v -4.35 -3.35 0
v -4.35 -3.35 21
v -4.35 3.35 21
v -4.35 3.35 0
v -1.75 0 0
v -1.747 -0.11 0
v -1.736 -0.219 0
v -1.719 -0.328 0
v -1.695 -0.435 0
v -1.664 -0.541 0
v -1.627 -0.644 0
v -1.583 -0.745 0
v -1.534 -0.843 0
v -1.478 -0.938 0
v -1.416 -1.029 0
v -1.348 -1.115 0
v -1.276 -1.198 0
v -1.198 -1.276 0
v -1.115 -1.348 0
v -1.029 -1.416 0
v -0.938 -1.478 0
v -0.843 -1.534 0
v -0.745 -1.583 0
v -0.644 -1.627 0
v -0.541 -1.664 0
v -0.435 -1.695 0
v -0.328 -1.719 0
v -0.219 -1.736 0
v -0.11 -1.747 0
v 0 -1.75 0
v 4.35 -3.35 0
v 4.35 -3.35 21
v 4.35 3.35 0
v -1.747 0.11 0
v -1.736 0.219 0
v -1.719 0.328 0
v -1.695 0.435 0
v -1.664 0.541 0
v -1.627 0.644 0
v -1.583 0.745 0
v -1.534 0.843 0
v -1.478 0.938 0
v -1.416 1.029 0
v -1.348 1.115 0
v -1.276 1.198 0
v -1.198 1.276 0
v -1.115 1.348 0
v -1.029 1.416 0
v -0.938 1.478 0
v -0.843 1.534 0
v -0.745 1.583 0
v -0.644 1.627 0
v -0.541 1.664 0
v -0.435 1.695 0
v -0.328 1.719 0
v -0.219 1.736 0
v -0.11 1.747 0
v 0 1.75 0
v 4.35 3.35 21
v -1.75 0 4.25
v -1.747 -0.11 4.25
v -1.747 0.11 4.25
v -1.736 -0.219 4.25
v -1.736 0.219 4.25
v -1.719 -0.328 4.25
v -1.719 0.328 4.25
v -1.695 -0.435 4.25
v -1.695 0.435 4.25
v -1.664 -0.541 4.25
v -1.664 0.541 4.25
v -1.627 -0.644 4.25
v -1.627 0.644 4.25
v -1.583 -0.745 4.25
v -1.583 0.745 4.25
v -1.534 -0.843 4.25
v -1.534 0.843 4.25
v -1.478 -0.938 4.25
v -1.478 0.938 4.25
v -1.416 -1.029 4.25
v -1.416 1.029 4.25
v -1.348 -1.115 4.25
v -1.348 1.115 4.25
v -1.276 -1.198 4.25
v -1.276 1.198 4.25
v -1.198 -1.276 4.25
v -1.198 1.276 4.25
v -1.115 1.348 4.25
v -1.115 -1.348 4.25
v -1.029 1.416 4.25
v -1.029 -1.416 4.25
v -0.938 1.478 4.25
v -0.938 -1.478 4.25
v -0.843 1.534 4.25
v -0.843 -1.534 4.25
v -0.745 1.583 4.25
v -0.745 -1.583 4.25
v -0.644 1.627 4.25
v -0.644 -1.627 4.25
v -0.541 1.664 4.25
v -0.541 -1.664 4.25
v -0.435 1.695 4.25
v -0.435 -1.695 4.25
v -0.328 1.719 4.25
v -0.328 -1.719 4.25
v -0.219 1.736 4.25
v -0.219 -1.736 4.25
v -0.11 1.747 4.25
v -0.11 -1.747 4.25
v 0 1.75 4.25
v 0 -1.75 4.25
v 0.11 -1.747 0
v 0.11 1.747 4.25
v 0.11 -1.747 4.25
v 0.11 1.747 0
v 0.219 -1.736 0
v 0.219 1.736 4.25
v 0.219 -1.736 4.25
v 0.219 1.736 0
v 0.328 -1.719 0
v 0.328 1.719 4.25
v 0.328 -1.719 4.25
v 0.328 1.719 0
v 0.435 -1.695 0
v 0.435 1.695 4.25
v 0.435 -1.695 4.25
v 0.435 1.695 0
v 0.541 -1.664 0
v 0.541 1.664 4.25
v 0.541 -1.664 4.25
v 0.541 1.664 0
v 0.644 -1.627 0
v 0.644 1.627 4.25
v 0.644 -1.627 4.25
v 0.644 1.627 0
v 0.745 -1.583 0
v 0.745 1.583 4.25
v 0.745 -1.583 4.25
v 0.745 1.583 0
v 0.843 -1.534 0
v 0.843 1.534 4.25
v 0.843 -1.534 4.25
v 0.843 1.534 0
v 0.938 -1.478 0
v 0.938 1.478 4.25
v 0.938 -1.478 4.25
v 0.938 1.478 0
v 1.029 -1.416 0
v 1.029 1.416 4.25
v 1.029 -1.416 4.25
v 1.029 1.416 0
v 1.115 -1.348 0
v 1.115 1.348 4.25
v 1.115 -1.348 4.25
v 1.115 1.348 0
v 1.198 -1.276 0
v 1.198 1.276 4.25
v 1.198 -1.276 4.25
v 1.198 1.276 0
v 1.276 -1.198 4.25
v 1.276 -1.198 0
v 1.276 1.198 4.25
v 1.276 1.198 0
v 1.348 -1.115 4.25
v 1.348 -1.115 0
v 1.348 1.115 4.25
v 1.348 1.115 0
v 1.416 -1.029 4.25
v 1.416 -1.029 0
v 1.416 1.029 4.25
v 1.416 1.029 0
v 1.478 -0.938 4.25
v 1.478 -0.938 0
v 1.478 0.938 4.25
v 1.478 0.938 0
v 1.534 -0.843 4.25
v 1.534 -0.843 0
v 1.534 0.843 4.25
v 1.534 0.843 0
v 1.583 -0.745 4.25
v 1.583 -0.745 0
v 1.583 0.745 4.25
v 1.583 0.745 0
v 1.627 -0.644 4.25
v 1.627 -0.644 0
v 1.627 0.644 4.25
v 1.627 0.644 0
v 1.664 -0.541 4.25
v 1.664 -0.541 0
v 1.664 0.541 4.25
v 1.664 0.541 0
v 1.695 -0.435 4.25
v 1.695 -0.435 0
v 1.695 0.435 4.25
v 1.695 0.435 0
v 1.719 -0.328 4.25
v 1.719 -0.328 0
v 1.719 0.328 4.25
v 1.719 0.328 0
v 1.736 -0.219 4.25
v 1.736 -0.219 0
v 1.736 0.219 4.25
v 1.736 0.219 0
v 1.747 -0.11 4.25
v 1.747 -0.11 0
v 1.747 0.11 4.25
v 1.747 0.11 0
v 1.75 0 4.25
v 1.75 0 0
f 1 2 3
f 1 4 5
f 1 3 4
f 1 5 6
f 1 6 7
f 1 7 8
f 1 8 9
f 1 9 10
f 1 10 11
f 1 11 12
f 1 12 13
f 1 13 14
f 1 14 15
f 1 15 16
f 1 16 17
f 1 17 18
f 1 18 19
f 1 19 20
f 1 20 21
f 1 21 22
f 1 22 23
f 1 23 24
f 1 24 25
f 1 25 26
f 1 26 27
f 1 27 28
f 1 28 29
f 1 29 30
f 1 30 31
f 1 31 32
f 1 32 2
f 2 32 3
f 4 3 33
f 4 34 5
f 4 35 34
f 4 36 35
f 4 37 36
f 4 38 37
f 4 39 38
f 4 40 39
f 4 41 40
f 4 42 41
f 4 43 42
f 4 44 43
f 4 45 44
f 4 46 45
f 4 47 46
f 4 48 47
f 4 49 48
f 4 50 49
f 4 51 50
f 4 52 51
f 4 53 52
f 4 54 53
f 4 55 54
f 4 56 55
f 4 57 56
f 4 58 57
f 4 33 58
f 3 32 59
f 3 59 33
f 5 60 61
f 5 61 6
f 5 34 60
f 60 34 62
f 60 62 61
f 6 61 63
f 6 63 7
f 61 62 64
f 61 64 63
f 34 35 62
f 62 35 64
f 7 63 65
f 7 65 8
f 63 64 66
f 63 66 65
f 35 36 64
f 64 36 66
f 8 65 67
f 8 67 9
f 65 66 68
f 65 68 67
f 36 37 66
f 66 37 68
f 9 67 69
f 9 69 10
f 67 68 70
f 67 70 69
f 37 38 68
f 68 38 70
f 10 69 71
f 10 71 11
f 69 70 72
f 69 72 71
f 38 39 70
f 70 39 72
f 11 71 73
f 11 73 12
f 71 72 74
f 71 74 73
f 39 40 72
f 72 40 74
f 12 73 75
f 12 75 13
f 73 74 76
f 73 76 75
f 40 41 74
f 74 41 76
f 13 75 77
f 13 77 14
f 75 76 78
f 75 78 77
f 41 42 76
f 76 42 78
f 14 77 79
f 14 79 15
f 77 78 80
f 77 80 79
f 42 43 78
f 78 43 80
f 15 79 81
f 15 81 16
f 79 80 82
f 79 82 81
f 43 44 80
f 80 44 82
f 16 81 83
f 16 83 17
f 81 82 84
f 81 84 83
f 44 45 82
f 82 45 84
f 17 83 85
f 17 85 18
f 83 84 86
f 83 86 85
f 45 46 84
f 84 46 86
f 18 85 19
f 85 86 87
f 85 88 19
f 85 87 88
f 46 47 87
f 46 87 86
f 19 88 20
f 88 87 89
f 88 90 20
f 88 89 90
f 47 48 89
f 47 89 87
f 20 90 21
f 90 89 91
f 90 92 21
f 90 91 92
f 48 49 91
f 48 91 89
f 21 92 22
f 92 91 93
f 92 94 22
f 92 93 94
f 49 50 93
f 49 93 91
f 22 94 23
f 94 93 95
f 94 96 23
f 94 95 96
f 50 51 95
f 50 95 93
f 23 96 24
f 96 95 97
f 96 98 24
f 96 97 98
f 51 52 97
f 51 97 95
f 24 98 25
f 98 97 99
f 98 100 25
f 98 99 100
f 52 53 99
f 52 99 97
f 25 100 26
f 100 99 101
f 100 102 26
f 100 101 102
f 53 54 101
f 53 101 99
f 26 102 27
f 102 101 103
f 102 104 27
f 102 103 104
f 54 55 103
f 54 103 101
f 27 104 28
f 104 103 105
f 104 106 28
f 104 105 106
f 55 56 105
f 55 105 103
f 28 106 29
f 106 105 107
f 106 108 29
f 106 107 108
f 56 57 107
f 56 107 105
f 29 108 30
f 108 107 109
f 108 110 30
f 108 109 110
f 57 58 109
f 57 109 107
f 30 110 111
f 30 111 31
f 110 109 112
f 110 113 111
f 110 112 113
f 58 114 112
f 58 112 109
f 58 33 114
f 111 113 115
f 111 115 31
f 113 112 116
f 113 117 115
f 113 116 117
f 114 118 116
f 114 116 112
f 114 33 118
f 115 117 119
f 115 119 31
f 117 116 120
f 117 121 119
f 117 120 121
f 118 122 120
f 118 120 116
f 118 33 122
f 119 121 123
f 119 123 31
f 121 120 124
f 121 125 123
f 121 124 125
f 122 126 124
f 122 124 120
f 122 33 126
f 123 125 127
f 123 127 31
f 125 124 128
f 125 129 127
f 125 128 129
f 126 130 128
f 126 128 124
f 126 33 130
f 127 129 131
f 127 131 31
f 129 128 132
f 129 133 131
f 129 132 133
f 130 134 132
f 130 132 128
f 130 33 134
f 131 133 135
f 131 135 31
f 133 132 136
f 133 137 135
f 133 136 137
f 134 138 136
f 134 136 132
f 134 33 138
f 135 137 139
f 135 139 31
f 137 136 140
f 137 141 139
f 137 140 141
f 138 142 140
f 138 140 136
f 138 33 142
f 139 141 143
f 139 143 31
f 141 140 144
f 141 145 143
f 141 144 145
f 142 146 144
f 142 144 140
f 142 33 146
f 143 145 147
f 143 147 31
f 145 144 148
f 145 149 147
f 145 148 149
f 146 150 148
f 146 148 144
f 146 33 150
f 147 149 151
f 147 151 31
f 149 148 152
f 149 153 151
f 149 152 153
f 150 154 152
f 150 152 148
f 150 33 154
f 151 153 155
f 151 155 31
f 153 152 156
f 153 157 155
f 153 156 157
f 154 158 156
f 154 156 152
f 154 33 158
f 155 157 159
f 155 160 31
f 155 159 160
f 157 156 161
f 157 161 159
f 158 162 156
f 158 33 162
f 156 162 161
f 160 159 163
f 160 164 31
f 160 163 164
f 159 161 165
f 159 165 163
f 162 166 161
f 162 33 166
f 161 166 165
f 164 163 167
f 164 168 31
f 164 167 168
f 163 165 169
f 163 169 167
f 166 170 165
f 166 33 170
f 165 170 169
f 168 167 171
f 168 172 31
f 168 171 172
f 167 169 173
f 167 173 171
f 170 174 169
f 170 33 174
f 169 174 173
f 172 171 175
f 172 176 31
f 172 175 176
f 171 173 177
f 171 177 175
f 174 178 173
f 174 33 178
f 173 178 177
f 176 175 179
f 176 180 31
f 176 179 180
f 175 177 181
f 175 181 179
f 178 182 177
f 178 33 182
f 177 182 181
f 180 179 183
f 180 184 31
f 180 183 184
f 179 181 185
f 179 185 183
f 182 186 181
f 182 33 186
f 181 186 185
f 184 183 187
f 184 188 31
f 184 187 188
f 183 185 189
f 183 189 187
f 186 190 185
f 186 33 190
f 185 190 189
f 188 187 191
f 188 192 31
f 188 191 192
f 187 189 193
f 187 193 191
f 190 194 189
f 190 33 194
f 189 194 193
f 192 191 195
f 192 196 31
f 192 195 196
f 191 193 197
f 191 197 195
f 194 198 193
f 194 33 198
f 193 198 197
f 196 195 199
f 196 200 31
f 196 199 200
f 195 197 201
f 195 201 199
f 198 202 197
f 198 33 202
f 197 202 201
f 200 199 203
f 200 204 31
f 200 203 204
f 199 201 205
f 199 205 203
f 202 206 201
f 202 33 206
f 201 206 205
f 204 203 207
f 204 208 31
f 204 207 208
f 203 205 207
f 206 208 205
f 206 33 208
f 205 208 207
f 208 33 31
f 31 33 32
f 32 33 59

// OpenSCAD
//outter_cylinder_height = 15;
//outter_radius = 2.5;

inner_cylinder_height = 4.5;
inner_radius = 1.75;

//outter_z = outter_cylinder_height/2;
//top_z = outter_cylinder_height;

difference(){
    
//OUTTER BODY
translate([0,0,(10.5)])
    rotate([0,0,0])
cube([8.7,6.7,21], center=true);

//INNER BODY
    translate([0,0,2])
cylinder (inner_cylinder_height,inner_radius,inner_radius,center=true);
}

//TOP 
//%translate([0,0,(top_z)])
//cylinder (1.5, 1.5,1.5);
$fn=100;
